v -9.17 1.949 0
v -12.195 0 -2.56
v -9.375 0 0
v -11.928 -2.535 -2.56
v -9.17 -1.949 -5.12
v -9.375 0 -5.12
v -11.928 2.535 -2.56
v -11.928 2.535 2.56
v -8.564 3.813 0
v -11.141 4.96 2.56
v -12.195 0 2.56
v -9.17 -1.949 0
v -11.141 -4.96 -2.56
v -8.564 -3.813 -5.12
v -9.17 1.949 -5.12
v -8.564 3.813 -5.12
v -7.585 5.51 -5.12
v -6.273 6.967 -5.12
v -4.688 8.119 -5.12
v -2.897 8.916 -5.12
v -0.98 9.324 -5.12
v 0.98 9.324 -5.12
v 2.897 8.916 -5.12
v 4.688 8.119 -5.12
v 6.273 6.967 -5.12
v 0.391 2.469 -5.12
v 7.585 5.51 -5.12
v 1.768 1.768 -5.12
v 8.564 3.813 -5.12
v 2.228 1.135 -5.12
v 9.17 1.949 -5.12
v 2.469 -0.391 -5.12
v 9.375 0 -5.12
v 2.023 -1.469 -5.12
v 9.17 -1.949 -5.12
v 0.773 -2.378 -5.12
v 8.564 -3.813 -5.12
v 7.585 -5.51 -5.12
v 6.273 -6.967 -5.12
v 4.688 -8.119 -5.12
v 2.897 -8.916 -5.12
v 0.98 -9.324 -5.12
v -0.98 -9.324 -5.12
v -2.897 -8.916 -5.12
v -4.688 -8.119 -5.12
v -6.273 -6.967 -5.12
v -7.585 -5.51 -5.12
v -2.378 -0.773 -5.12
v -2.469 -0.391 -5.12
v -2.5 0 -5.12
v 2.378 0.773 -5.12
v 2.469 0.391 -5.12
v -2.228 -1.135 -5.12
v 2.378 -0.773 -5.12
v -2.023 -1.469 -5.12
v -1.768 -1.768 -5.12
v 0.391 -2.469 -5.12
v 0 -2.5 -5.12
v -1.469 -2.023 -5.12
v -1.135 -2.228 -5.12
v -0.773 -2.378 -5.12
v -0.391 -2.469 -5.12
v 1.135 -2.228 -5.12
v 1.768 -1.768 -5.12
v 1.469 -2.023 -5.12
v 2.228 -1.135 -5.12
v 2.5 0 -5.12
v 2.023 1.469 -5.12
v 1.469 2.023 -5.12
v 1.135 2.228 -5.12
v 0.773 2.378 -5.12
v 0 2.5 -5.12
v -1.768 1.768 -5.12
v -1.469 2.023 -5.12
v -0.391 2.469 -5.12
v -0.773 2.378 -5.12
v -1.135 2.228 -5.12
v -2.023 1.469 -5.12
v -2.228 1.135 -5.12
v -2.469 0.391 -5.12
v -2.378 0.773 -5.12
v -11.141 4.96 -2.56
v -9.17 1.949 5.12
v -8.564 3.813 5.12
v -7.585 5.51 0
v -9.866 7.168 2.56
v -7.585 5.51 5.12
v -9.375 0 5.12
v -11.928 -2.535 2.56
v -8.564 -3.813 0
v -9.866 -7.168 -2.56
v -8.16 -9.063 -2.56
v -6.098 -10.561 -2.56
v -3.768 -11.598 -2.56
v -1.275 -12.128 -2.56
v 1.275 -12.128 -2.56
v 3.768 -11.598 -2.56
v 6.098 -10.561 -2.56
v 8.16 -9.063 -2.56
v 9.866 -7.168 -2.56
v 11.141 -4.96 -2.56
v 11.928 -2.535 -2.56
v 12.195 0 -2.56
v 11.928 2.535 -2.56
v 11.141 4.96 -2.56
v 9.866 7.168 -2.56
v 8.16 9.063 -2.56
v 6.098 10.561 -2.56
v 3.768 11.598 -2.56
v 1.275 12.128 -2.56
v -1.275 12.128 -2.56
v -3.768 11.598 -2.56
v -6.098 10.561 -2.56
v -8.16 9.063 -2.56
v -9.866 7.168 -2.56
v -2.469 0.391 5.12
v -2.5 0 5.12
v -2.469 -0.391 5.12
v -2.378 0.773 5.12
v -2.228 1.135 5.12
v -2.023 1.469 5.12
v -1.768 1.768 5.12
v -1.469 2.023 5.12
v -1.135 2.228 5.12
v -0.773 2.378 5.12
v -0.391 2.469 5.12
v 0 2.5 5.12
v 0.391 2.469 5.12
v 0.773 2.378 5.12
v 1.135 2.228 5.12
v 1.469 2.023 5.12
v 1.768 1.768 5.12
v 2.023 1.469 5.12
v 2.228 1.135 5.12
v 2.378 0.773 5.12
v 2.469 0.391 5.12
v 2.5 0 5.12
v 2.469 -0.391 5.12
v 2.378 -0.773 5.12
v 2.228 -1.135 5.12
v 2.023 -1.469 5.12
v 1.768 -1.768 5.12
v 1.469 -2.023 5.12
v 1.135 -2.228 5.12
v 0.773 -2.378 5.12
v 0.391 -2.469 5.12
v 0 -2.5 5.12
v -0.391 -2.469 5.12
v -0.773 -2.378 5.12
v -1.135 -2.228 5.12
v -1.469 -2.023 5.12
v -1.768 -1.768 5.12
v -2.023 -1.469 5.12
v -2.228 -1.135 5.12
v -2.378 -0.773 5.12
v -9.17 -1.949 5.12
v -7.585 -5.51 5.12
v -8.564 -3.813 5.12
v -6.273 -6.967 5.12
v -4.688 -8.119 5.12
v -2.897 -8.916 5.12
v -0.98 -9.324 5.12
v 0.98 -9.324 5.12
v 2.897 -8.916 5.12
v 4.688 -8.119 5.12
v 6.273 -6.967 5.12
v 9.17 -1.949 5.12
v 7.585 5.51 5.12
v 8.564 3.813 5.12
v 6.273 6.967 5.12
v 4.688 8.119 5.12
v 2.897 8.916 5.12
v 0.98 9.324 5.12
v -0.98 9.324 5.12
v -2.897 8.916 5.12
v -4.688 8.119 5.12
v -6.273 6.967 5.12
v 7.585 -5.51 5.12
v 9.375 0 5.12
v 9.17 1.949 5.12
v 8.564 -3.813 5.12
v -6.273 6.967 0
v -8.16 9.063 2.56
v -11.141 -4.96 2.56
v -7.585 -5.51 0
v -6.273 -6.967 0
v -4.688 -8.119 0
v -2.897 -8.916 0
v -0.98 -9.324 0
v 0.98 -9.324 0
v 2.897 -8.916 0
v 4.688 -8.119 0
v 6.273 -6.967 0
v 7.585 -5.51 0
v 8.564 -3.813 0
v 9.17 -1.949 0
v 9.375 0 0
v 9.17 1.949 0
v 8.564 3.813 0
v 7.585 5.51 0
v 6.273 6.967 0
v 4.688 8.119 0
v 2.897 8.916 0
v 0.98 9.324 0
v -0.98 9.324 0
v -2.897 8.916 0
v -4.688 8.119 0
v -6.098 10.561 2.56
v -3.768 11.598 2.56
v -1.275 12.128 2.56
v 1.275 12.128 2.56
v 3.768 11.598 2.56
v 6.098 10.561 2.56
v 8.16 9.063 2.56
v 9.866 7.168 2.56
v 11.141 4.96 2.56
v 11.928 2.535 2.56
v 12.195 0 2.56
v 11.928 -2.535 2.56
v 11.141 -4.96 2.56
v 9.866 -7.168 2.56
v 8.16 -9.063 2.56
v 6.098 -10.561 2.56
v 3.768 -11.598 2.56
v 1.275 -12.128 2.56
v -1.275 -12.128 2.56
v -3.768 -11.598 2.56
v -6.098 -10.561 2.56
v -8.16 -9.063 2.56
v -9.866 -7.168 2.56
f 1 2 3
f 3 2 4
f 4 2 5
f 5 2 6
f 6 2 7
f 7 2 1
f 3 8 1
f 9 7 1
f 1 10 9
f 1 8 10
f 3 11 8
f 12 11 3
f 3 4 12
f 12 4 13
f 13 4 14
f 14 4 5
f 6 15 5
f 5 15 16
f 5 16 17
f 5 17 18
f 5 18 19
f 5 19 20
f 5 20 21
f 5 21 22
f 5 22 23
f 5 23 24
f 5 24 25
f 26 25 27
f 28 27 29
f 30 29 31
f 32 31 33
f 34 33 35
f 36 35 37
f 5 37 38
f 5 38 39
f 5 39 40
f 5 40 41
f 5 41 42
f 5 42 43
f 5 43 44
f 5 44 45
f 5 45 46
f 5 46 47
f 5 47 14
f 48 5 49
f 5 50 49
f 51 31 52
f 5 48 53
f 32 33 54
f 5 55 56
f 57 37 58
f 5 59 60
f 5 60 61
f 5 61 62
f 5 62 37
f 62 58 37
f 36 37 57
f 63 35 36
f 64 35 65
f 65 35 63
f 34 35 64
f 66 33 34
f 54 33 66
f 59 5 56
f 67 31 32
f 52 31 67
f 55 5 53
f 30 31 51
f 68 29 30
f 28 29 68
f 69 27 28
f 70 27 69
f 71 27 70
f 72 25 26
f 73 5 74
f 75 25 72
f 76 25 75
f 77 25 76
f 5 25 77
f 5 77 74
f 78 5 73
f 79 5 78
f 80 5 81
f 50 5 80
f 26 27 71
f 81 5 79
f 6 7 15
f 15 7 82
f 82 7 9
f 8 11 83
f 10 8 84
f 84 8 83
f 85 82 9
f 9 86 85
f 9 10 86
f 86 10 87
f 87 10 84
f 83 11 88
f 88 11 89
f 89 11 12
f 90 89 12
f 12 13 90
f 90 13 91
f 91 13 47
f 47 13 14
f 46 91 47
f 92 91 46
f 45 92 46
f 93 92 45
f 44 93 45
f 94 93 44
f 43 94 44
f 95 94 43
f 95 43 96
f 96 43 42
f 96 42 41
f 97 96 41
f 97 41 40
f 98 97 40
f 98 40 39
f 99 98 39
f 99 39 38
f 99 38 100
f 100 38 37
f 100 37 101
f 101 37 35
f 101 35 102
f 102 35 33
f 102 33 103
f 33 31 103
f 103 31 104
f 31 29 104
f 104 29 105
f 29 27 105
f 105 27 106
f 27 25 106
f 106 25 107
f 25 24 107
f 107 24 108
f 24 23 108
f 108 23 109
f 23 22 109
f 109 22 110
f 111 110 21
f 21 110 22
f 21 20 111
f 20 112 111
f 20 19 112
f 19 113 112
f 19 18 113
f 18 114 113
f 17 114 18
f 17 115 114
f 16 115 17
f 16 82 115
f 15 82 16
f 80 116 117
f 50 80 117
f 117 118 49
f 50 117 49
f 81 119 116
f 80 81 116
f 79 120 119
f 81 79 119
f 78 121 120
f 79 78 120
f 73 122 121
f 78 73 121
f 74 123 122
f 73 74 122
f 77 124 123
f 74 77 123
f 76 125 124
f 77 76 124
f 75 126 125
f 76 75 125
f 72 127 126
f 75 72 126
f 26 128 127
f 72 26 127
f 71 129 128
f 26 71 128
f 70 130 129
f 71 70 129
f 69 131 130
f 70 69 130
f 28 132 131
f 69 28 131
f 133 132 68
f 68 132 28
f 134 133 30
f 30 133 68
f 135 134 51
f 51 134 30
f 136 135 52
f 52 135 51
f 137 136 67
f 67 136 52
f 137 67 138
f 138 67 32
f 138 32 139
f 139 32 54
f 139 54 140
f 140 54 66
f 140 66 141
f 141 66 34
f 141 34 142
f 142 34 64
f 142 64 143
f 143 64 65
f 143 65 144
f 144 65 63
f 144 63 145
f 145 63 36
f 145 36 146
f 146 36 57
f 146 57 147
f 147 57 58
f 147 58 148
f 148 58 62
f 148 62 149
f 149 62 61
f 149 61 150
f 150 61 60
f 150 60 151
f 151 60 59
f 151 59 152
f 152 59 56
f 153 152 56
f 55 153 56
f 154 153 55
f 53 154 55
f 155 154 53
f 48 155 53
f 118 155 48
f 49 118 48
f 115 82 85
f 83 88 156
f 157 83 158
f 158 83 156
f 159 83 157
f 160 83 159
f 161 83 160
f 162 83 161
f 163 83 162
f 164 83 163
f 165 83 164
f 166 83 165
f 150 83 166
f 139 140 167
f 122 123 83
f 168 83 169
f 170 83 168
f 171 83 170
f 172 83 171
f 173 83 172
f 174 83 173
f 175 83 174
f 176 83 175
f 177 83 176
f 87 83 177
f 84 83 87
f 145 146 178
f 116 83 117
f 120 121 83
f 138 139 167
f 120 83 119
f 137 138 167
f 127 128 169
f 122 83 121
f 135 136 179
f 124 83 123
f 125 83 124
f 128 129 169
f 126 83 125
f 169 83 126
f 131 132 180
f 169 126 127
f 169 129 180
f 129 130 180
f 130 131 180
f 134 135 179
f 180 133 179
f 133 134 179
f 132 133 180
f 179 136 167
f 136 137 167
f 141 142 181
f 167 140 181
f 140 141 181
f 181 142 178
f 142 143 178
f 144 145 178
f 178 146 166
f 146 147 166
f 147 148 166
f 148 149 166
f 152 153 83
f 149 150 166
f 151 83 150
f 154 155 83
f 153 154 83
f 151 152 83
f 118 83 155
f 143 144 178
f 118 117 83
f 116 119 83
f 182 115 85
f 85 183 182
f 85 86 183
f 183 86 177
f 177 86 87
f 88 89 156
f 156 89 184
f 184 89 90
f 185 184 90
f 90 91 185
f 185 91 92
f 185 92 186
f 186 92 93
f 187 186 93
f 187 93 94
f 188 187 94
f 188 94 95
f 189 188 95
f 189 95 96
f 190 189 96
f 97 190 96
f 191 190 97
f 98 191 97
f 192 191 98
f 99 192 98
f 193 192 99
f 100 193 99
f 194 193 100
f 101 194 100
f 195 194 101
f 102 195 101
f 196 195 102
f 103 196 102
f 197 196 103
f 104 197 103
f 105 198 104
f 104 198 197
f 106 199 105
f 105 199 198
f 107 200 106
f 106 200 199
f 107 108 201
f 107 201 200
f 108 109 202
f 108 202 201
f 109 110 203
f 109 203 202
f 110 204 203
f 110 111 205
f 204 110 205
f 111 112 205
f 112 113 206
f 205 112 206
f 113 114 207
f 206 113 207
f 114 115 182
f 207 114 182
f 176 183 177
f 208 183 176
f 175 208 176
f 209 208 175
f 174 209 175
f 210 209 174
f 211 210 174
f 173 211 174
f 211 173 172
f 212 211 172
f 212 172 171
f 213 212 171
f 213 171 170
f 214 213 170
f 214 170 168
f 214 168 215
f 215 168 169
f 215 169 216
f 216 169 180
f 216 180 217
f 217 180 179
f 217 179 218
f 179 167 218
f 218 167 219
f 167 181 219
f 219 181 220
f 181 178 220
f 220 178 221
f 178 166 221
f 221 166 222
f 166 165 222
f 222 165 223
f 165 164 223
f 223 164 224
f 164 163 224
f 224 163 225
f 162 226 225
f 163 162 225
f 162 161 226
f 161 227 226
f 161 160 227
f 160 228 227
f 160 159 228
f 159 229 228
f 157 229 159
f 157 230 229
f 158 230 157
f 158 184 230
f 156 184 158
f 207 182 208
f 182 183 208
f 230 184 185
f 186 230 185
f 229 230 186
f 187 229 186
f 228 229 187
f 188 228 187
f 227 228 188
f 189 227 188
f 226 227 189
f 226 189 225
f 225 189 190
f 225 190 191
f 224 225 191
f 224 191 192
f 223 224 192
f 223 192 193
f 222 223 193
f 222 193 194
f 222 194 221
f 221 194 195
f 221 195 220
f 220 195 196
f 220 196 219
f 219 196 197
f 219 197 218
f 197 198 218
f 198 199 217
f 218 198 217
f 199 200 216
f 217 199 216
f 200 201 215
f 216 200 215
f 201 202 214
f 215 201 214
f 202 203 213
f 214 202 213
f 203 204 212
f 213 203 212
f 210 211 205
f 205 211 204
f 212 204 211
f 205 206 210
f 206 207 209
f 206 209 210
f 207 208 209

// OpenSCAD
// openbuilds dual v wheel
od= 24.39;
id= 18.75;

t= 5.12; // thickness of one half
thick= 10.23;

wheel_id= id; // the diameter of the outside hole
wheel_d= 0; // the depth from the outside of the wheel to the bearing
wheel_groove_d= 0; // the depth of the groove on the outside of the wheel
wheel_groove_w= 0; // the width of the groove on the outside of the wheel

bearingThickness= 5;
bearingOD= 16;
bearingID= 5;

function v_wheel_dia()= od;
function v_wheel_width()= thick;
function v_wheel_id()= wheel_id;
function v_wheel_indent()= wheel_d-0.1;

module V_wheel() {
	cylinder(r1=od/2,r2=id/2, h=t/2);
	translate([0,0,t/2]) cylinder(r2=od/2,r1=id/2, h=t/2);
	translate([0,0,t]) cylinder(r1=od/2, r2=id/2, h= t/2);
	translate([0,0,-t/2]) cylinder(r2=od/2, r1=id/2, h= t/2);
}

module groove() {
	// make a negative of the cutout so it can be differenced
	difference() {
		cylinder(r=od/2+0.1, h=wheel_groove_d+0.1, $fn=40);
		cylinder(r=od/2-wheel_groove_w, h=wheel_groove_d, $fn=40);
	}
}

module v_wheel() {
	difference() {
		translate([0,0,-t/2]) V_wheel();
		translate([0,0,-(thick+4)/2]) cylinder(r=bearingID/2, h=thick+4, $fn=40);
	}
}

module v_wheel_vertical() {
	rotate([0,90,0]) v_wheel();
}

v_wheel();
//w_wheel_vertical();
//V_wheel();
